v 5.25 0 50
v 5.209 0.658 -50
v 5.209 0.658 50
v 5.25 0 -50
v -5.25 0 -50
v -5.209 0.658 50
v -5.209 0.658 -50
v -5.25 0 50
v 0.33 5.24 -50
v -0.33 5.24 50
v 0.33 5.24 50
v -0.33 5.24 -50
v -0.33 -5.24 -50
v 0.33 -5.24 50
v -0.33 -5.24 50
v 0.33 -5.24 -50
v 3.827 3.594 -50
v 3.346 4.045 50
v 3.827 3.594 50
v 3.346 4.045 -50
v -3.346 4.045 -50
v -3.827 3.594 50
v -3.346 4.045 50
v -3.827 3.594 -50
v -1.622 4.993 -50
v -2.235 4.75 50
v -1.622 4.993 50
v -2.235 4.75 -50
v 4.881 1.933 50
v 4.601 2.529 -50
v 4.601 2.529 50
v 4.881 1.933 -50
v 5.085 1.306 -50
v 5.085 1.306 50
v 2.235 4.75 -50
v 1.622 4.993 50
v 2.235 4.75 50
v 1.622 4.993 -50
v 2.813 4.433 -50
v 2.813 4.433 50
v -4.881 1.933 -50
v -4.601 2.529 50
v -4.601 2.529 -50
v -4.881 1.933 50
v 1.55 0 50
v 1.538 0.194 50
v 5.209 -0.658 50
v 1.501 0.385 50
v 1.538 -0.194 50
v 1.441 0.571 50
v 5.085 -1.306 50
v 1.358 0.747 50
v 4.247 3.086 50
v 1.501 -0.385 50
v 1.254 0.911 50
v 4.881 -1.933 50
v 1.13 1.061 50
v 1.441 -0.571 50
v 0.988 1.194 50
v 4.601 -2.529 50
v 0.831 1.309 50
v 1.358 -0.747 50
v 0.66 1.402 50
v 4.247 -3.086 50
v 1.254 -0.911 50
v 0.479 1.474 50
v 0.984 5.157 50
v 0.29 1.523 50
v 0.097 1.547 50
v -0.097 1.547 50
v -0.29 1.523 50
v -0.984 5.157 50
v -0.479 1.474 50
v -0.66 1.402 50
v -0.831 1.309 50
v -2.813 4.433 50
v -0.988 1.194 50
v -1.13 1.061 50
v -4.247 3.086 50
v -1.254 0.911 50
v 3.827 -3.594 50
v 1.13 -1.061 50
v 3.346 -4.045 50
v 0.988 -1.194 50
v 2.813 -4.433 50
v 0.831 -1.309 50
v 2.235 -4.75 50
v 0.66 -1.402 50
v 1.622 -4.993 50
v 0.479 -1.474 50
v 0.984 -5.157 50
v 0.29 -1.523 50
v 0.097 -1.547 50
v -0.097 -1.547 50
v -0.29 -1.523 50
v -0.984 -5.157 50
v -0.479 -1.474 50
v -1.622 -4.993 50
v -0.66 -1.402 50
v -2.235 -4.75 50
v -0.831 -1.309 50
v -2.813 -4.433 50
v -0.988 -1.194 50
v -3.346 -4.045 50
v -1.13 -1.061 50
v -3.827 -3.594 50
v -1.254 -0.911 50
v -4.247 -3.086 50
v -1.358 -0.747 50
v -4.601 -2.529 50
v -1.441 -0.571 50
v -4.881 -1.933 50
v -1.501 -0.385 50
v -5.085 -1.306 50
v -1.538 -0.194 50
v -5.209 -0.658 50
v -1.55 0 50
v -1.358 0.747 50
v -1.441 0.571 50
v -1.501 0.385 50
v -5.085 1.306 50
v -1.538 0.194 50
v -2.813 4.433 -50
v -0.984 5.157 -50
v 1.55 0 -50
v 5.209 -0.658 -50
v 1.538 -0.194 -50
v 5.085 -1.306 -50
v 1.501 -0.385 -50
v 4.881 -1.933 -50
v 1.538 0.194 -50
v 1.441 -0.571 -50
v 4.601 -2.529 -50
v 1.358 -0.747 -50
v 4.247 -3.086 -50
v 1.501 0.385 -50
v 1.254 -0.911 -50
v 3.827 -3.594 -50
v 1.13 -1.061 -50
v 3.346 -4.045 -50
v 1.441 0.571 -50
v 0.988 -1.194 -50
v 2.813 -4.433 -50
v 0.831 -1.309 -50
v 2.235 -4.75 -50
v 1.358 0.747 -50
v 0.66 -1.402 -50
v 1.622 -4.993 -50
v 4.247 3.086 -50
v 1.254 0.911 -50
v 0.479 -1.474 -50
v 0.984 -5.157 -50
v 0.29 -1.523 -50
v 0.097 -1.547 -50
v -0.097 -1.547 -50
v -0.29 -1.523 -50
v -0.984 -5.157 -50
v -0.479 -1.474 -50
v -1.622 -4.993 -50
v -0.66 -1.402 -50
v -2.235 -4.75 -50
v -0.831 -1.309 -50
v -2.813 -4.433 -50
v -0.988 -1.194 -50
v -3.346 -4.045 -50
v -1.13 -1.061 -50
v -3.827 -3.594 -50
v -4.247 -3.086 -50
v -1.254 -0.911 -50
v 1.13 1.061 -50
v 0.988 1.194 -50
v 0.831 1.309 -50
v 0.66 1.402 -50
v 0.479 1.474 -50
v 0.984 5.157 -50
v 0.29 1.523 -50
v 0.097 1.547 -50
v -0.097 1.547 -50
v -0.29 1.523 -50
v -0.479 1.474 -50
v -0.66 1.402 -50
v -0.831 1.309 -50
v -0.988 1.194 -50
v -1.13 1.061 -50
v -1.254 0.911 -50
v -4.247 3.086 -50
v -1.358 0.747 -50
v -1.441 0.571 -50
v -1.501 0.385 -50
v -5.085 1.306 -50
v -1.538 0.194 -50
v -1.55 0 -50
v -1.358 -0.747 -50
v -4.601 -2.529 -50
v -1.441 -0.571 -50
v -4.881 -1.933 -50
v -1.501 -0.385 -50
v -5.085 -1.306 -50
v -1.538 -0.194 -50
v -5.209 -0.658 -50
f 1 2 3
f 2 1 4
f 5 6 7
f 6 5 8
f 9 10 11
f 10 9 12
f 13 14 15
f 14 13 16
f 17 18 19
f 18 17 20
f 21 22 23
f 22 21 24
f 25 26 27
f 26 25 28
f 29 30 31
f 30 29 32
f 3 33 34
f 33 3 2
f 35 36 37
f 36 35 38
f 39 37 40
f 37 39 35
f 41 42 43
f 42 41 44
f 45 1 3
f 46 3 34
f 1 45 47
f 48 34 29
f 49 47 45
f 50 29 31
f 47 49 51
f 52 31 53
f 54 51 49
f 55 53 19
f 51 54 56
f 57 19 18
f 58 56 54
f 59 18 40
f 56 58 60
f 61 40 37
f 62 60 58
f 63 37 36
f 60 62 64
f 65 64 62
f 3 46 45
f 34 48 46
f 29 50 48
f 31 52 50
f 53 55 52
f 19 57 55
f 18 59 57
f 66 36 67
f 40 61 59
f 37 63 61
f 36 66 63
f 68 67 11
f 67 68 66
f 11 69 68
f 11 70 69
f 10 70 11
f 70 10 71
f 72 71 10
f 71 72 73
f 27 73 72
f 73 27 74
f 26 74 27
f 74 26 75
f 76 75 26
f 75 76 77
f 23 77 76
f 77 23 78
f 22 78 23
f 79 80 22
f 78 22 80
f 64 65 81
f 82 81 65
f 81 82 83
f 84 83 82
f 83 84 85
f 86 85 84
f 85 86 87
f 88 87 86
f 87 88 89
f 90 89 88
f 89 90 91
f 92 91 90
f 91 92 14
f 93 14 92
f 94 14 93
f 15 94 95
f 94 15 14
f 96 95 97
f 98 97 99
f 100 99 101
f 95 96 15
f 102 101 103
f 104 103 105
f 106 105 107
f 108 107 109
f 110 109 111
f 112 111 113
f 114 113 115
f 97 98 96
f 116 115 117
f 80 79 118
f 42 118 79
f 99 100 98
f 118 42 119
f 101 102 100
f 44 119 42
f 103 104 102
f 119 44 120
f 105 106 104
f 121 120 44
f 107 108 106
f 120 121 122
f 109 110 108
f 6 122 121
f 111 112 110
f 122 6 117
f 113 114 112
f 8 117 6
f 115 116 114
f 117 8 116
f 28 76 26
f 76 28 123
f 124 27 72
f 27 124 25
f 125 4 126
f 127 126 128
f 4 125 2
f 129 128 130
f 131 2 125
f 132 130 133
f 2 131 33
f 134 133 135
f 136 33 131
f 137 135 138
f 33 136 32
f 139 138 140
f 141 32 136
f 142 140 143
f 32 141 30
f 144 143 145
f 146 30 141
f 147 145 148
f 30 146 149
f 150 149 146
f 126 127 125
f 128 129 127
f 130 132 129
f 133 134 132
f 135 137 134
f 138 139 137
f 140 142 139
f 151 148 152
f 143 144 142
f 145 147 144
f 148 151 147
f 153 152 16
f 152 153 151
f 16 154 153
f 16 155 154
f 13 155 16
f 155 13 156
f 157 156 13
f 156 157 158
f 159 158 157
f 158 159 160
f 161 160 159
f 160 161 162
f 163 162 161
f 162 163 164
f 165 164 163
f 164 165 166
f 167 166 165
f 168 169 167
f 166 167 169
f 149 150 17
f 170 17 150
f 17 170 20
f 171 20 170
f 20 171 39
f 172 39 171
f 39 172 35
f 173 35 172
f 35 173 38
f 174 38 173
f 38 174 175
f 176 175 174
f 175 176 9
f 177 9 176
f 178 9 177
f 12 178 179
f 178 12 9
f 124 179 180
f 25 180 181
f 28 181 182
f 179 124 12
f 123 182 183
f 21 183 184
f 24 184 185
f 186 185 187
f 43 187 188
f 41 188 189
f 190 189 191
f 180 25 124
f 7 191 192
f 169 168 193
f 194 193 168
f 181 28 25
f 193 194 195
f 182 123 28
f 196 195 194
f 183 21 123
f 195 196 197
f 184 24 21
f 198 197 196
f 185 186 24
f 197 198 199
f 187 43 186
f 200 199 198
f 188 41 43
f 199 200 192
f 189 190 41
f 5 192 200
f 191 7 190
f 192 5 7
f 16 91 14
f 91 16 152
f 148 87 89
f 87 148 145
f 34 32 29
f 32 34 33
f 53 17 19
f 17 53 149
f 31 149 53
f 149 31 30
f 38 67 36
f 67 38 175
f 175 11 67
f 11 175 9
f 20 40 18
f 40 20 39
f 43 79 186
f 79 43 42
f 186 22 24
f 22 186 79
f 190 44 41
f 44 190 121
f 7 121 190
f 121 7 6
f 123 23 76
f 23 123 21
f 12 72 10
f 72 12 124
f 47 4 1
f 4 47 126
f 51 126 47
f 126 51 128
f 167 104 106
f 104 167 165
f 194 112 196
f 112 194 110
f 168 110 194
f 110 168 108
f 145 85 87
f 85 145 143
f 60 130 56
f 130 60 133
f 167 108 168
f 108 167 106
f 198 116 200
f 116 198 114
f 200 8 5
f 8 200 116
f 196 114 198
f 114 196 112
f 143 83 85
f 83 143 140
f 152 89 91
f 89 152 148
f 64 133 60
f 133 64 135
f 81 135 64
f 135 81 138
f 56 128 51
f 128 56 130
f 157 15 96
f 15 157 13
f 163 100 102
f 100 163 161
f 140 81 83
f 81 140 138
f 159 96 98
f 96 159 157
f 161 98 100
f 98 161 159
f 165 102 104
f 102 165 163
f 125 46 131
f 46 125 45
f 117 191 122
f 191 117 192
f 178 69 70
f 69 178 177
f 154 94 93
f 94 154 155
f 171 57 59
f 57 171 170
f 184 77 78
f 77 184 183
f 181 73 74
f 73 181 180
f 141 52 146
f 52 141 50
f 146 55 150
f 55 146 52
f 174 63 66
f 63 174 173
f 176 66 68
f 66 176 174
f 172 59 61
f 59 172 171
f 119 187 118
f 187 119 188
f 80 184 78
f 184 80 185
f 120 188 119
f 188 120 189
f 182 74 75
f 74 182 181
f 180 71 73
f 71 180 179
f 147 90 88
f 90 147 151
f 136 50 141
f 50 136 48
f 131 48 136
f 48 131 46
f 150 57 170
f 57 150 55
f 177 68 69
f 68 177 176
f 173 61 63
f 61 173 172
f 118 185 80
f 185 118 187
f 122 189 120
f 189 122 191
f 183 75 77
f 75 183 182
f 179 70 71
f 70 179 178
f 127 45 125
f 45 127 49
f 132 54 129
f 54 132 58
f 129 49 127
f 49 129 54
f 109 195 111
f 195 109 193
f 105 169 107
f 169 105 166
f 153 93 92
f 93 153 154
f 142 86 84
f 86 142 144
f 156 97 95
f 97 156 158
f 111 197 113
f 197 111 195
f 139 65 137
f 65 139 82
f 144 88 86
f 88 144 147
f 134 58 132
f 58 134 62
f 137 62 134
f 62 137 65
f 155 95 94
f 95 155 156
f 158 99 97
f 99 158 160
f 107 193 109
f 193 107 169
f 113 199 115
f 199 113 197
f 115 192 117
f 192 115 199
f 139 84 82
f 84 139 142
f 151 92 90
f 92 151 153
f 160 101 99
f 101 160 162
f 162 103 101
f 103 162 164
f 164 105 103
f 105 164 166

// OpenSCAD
$fn = 50;


difference() {
	union() {
		translate(v = [0, 0, -50.0000000000]) {
			cylinder(h = 100, r = 5.2500000000);
		}
	}
	union() {
		translate(v = [0, 0, -100.0000000000]) {
			cylinder(h = 200, r = 1.5500000000);
		}
	}
}
